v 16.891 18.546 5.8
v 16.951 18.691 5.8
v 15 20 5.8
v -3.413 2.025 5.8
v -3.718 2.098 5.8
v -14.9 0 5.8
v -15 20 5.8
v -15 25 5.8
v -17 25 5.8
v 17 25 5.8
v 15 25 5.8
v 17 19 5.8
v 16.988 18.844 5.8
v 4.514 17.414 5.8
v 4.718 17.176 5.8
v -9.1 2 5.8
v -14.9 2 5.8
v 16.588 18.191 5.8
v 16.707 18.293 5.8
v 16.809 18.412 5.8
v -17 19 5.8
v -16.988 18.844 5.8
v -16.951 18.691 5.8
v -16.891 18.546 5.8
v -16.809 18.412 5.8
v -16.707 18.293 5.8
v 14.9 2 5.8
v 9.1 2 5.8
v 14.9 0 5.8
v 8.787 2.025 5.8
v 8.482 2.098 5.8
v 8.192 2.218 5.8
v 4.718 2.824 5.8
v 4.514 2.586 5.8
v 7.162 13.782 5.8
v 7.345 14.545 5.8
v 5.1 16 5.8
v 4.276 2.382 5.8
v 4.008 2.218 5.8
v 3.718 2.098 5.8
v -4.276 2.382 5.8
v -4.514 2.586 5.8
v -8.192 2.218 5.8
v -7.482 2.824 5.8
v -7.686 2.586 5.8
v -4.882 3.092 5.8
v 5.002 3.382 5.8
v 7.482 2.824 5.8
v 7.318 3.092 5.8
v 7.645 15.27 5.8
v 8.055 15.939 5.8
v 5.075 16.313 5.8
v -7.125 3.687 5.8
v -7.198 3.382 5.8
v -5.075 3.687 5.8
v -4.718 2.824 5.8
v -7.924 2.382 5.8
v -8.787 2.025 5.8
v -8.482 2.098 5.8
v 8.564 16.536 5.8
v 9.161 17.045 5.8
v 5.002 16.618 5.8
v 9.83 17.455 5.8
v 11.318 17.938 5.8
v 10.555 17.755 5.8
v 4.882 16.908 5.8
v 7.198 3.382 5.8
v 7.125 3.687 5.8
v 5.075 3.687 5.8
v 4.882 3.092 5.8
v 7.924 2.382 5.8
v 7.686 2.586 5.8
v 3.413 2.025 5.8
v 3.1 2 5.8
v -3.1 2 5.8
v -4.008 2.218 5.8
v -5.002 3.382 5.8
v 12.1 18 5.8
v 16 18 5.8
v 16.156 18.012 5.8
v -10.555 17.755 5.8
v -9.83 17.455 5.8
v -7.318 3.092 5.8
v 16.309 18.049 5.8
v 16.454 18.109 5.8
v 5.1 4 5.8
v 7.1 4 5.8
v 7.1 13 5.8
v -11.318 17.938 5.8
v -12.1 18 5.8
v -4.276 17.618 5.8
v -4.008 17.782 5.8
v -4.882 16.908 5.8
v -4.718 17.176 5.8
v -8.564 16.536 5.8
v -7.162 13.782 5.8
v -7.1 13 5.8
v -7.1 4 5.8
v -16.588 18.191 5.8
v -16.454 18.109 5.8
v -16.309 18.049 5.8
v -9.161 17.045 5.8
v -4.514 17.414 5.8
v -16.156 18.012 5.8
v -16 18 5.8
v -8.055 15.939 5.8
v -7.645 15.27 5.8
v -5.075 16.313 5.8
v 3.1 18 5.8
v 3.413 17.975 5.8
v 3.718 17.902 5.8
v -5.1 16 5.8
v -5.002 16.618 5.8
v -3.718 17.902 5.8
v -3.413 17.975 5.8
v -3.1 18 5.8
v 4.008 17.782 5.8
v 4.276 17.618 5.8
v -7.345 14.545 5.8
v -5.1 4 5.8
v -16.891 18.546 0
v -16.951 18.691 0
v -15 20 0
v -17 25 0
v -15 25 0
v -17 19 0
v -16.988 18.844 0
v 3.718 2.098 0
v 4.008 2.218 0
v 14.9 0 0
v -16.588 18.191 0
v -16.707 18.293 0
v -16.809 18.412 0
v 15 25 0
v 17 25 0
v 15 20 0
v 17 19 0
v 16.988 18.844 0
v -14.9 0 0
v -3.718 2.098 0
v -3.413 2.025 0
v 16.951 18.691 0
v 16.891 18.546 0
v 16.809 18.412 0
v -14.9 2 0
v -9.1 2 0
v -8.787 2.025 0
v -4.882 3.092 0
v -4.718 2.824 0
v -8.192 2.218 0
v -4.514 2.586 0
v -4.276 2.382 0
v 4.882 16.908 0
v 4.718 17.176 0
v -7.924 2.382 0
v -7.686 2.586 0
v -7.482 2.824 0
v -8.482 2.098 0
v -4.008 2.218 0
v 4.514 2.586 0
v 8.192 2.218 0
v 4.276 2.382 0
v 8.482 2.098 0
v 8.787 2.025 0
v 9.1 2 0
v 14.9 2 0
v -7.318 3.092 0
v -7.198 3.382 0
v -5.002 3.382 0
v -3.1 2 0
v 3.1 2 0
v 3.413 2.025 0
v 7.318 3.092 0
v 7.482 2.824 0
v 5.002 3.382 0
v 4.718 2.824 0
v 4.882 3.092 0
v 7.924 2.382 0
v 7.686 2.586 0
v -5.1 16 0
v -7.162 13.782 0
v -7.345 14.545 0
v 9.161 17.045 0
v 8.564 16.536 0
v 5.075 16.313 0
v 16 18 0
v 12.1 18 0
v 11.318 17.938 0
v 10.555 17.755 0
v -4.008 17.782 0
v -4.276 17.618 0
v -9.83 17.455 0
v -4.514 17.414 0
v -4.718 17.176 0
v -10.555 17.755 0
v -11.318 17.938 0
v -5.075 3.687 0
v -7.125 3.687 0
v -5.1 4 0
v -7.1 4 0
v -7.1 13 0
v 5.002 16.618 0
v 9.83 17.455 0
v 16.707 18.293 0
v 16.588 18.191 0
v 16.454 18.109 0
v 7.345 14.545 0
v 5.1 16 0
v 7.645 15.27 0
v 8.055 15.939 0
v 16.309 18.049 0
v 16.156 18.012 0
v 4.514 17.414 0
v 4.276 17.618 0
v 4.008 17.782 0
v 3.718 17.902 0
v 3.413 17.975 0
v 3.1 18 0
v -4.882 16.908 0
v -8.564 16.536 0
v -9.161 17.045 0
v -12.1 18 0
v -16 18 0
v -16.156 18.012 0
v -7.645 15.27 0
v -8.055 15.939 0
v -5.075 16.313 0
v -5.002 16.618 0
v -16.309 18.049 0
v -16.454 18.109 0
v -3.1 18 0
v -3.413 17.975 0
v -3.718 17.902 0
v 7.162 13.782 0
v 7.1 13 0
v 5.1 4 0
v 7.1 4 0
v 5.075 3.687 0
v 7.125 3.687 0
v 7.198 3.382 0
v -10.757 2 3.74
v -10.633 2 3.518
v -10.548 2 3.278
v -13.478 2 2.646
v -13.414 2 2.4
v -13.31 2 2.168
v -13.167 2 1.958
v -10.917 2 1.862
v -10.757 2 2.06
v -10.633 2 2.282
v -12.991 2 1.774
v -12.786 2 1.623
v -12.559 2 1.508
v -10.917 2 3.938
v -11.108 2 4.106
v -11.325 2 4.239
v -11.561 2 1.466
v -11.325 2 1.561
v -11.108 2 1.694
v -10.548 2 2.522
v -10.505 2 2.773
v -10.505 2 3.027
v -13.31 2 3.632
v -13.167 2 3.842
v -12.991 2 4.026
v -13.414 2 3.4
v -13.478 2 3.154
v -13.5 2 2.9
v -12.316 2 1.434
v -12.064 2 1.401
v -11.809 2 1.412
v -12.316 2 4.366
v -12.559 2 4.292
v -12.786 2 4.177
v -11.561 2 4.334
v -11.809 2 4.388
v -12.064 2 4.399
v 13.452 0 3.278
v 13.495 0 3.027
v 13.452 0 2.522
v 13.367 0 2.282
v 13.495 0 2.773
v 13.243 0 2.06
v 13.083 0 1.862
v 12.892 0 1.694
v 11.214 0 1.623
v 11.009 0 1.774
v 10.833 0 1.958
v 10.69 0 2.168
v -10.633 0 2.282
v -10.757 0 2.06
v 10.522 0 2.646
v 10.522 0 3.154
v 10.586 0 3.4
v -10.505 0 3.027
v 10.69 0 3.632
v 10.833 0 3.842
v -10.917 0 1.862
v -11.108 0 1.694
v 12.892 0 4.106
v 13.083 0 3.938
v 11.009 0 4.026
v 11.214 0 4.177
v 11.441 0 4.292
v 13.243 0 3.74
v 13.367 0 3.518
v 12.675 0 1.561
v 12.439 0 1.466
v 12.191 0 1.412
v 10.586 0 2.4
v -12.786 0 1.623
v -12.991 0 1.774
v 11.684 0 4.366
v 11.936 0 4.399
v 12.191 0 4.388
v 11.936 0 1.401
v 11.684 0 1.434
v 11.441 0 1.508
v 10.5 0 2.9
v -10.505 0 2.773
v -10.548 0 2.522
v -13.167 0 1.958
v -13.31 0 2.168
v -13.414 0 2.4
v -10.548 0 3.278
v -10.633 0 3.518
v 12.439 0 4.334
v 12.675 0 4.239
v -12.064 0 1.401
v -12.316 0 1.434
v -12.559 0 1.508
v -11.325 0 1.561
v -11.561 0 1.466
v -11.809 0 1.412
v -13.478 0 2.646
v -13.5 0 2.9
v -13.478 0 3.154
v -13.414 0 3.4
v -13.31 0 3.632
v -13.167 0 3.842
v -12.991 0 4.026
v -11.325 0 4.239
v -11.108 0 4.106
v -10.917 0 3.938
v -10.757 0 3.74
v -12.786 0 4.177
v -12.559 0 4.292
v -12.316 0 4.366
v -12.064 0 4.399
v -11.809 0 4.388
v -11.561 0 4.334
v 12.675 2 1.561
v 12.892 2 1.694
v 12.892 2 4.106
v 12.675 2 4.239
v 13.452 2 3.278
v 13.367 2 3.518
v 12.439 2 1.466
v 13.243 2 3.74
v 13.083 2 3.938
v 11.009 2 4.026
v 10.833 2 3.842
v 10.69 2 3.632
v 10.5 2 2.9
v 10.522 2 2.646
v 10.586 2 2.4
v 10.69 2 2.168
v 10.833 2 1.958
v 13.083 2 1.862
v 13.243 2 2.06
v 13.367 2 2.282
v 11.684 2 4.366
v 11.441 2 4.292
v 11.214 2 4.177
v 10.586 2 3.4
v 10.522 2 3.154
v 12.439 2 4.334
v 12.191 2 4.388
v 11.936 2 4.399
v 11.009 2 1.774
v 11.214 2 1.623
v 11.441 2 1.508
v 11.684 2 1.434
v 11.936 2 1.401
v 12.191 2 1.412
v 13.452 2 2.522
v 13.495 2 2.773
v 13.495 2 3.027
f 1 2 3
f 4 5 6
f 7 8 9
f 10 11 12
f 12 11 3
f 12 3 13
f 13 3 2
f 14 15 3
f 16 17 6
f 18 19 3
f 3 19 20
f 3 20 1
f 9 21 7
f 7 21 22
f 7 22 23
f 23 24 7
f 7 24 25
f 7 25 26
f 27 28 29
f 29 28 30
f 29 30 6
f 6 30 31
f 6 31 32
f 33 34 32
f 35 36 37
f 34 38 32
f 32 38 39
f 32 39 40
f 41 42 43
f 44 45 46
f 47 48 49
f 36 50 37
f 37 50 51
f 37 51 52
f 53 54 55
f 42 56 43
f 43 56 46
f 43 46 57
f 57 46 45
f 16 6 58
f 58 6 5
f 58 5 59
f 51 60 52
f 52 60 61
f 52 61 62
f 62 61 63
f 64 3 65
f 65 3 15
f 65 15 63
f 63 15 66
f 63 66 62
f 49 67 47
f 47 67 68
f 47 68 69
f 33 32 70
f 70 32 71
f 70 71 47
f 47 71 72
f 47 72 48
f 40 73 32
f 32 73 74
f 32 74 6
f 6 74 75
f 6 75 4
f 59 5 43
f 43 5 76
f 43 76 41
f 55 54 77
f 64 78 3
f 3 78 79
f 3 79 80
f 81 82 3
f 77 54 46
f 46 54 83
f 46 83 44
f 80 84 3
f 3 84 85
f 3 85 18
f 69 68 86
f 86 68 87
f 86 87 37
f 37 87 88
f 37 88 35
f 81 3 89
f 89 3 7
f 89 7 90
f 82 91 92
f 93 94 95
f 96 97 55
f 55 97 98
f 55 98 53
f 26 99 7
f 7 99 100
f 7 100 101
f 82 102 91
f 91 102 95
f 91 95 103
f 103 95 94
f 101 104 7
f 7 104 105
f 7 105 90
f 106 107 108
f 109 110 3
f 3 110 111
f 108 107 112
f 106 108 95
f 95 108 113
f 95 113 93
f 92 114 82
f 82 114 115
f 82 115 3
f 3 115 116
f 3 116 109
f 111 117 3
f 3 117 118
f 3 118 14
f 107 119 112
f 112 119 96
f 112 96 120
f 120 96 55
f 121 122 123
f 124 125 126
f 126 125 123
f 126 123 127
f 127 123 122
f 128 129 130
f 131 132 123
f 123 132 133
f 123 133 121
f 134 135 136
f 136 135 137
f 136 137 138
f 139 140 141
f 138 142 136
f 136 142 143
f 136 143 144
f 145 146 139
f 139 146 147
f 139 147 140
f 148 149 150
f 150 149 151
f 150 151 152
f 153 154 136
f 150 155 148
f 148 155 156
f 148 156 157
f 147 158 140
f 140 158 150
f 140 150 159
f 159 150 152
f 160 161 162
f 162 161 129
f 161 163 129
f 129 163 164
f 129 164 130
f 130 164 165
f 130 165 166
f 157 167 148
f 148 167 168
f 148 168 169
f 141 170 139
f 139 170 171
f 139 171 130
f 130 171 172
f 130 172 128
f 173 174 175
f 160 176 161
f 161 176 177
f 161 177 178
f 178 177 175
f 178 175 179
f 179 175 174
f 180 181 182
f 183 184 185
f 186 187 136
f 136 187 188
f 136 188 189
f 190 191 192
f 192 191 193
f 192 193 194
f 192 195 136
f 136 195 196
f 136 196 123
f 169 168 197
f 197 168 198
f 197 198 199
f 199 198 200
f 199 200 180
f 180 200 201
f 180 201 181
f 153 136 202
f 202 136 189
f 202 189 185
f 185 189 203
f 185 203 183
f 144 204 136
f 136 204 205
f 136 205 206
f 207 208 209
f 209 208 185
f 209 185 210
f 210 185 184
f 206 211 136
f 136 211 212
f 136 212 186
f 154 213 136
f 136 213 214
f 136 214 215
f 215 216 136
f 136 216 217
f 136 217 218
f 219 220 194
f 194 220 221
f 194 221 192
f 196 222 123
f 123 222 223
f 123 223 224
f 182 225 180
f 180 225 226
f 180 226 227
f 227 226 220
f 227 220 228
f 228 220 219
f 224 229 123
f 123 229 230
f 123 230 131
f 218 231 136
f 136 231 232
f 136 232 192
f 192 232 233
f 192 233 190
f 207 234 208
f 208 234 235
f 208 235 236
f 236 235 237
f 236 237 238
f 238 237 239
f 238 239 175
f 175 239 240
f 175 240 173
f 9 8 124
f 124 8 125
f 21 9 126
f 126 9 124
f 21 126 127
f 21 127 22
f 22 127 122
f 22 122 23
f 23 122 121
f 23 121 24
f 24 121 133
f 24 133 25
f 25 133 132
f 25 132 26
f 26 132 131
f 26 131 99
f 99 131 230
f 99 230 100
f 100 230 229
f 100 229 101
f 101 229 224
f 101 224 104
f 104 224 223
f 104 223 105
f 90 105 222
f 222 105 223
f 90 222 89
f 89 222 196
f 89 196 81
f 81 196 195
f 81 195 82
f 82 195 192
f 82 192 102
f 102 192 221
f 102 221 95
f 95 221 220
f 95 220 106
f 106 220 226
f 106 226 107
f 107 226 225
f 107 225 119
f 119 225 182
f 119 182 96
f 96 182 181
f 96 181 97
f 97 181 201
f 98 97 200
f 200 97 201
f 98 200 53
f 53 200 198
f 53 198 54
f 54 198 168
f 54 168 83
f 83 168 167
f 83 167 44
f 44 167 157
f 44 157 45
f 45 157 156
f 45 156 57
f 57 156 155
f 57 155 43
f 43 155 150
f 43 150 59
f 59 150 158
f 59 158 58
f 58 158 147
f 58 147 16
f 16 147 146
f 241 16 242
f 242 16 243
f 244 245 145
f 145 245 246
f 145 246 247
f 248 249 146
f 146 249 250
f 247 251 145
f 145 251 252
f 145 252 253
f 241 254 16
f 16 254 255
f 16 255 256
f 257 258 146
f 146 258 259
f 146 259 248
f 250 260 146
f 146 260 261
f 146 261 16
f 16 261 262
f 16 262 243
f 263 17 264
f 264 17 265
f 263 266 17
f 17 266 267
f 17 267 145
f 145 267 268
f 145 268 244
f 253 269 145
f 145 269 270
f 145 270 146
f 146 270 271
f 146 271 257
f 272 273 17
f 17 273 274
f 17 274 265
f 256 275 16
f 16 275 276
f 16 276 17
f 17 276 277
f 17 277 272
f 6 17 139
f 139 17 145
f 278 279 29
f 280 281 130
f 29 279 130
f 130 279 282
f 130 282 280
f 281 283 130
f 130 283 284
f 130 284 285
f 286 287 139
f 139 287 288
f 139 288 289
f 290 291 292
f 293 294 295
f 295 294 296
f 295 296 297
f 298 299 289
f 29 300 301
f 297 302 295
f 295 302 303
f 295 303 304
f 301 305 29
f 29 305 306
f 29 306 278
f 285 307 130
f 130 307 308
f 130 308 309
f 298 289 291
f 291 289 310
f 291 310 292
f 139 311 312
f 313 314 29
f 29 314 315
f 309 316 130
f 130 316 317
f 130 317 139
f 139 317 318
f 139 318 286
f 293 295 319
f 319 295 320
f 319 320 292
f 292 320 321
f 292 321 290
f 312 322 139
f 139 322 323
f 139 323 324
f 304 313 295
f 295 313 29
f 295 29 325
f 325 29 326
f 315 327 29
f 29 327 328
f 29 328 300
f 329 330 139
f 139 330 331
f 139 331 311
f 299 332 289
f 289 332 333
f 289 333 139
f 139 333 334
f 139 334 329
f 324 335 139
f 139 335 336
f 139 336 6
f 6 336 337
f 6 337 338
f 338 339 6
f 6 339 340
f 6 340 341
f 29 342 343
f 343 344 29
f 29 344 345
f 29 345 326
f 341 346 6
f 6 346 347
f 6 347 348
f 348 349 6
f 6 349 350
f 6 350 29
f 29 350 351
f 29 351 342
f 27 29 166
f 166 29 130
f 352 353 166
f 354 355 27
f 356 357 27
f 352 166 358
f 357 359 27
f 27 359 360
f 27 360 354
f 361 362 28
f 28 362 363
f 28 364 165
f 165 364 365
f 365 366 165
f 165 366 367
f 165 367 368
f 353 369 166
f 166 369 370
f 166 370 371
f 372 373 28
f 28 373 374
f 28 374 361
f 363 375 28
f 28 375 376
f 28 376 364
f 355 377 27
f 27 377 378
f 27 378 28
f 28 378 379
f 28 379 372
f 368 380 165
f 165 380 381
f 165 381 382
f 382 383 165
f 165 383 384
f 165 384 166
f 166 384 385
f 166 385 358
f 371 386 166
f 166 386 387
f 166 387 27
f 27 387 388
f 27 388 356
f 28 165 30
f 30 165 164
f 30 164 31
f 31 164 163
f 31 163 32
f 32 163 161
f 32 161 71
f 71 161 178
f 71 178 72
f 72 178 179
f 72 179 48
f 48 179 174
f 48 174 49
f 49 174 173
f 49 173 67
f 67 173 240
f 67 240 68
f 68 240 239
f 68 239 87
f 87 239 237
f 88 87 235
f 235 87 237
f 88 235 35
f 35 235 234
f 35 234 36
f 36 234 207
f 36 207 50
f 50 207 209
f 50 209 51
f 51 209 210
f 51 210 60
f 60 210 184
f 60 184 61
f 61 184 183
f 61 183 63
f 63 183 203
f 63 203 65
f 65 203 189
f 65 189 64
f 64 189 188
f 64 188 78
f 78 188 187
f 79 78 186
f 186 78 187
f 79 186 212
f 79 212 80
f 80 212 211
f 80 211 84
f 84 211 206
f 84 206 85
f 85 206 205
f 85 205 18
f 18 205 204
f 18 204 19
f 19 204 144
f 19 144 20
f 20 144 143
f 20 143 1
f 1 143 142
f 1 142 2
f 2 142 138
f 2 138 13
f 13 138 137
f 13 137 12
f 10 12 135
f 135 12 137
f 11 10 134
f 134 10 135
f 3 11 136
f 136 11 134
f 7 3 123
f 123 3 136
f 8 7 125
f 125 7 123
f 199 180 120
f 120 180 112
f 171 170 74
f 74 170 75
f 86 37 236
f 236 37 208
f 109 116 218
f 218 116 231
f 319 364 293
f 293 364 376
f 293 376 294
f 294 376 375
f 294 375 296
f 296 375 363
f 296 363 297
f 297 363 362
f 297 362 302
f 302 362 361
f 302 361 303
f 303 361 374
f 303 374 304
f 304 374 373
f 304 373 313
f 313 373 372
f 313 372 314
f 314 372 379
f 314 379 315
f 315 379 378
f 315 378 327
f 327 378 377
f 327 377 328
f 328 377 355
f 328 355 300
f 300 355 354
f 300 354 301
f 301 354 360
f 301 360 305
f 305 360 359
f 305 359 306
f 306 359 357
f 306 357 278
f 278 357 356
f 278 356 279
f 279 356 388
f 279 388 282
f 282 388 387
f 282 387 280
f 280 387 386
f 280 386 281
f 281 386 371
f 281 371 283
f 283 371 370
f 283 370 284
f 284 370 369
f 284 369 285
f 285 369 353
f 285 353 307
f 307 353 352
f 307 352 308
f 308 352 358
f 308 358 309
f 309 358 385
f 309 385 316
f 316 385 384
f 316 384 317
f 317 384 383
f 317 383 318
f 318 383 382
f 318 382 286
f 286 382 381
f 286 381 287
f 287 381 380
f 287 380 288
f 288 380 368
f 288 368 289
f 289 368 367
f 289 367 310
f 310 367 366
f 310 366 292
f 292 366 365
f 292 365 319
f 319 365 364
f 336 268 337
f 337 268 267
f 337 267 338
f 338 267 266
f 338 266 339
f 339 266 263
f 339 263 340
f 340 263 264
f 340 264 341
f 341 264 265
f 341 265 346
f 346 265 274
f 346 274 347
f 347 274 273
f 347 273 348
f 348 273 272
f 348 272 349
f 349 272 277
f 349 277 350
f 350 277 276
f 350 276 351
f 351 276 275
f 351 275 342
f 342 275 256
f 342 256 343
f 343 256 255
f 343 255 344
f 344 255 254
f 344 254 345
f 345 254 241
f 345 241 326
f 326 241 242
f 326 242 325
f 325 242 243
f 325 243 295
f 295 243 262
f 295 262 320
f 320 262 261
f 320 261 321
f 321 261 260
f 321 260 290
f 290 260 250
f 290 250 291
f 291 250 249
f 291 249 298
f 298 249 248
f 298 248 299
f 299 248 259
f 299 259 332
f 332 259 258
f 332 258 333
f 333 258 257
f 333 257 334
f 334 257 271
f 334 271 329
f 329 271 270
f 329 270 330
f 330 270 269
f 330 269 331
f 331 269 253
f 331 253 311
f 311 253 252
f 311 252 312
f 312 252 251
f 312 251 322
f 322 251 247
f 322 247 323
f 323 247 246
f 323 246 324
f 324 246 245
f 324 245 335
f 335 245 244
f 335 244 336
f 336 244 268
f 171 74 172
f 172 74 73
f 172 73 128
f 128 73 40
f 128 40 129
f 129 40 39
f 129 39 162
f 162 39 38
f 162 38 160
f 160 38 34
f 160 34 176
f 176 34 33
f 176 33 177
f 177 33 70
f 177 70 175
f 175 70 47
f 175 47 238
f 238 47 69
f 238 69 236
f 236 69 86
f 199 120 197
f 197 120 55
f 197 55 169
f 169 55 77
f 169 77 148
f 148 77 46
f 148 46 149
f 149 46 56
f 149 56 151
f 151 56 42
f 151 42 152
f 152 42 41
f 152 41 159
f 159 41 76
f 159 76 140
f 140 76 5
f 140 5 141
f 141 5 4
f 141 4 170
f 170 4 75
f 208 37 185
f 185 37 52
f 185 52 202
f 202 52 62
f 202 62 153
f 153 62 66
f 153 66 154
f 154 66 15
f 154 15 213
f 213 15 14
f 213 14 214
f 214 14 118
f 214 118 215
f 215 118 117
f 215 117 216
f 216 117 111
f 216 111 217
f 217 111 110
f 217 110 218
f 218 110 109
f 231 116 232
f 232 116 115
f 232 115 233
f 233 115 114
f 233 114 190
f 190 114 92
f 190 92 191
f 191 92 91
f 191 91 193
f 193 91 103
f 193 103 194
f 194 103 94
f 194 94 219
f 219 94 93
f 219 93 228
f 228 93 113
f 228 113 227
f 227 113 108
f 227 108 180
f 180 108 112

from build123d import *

# Parameters (mm, degrees)
SKETCH1_W           = 10.2
SKETCH1_H           = 16
BOSS_EXTRUDE1_DEPTH = 5.8
SKETCH2_R           = 1.5
CUT_EXTRUDE1_DEPTH  = 3
FILLET1_R           = 2


with BuildPart() as part:
    # Sketch1 → Boss-Extrude1 (new body)
    with BuildSketch(Plane.XY):
        with BuildLine():
            Line((-15, 25), (-15, 20))
            Line((-15, 20), (15, 20))
            Line((15, 20), (15, 25))
            Line((15, 25), (17, 25))
            Line((17, 25), (17, 19))
            ThreePointArc((17, 19), (16.707106781, 18.292893219), (16, 18))
            Line((16, 18), (12.1, 18))
            ThreePointArc((12.1, 18), (8.564466094, 16.535533906), (7.1, 13))
            Line((7.1, 13), (7.1, 4))
            ThreePointArc((7.1, 4), (7.685786438, 2.585786438), (9.1, 2))
            Line((9.1, 2), (14.9, 2))
            Line((14.9, 2), (14.9, 0))
            Line((14.9, 0), (-14.9, 0))
            Line((-14.9, 0), (-14.9, 2))
            Line((-14.9, 2), (-9.1, 2))
            ThreePointArc((-9.1, 2), (-7.685786438, 2.585786438), (-7.1, 4))
            Line((-7.1, 4), (-7.1, 13))
            ThreePointArc((-7.1, 13), (-8.564466094, 16.535533906), (-12.1, 18))
            Line((-12.1, 18), (-16, 18))
            ThreePointArc((-16, 18), (-16.707106781, 18.292893219), (-17, 19))
            Line((-17, 19), (-17, 25))
            Line((-17, 25), (-15, 25))
        make_face()
        with Locations((0, 10)):
            Rectangle(SKETCH1_W, SKETCH1_H, mode=Mode.SUBTRACT)
    extrude(amount=BOSS_EXTRUDE1_DEPTH)

    # Sketch2 → Cut-Extrude1 (cut, through all)
    with BuildSketch(Plane(origin=(0, 2, 0), x_dir=(1, 0, 0), z_dir=(0, 1, 0))):
        with Locations((-12, -2.9)):
            Circle(SKETCH2_R)
        with Locations((12, -2.9)):
            Circle(SKETCH2_R)
    extrude(amount=-CUT_EXTRUDE1_DEPTH, mode=Mode.SUBTRACT)

    # Fillet1
    fillet1_edges = [part.edges().sort_by_distance(p)[0] for p in [
        (-5.1, 18, 2.9),
        (-5.1, 2, 2.9),
        (5.1, 2, 2.9),
        (5.1, 18, 2.9),
    ]]
    fillet(fillet1_edges, radius=FILLET1_R)


solid = part.part
